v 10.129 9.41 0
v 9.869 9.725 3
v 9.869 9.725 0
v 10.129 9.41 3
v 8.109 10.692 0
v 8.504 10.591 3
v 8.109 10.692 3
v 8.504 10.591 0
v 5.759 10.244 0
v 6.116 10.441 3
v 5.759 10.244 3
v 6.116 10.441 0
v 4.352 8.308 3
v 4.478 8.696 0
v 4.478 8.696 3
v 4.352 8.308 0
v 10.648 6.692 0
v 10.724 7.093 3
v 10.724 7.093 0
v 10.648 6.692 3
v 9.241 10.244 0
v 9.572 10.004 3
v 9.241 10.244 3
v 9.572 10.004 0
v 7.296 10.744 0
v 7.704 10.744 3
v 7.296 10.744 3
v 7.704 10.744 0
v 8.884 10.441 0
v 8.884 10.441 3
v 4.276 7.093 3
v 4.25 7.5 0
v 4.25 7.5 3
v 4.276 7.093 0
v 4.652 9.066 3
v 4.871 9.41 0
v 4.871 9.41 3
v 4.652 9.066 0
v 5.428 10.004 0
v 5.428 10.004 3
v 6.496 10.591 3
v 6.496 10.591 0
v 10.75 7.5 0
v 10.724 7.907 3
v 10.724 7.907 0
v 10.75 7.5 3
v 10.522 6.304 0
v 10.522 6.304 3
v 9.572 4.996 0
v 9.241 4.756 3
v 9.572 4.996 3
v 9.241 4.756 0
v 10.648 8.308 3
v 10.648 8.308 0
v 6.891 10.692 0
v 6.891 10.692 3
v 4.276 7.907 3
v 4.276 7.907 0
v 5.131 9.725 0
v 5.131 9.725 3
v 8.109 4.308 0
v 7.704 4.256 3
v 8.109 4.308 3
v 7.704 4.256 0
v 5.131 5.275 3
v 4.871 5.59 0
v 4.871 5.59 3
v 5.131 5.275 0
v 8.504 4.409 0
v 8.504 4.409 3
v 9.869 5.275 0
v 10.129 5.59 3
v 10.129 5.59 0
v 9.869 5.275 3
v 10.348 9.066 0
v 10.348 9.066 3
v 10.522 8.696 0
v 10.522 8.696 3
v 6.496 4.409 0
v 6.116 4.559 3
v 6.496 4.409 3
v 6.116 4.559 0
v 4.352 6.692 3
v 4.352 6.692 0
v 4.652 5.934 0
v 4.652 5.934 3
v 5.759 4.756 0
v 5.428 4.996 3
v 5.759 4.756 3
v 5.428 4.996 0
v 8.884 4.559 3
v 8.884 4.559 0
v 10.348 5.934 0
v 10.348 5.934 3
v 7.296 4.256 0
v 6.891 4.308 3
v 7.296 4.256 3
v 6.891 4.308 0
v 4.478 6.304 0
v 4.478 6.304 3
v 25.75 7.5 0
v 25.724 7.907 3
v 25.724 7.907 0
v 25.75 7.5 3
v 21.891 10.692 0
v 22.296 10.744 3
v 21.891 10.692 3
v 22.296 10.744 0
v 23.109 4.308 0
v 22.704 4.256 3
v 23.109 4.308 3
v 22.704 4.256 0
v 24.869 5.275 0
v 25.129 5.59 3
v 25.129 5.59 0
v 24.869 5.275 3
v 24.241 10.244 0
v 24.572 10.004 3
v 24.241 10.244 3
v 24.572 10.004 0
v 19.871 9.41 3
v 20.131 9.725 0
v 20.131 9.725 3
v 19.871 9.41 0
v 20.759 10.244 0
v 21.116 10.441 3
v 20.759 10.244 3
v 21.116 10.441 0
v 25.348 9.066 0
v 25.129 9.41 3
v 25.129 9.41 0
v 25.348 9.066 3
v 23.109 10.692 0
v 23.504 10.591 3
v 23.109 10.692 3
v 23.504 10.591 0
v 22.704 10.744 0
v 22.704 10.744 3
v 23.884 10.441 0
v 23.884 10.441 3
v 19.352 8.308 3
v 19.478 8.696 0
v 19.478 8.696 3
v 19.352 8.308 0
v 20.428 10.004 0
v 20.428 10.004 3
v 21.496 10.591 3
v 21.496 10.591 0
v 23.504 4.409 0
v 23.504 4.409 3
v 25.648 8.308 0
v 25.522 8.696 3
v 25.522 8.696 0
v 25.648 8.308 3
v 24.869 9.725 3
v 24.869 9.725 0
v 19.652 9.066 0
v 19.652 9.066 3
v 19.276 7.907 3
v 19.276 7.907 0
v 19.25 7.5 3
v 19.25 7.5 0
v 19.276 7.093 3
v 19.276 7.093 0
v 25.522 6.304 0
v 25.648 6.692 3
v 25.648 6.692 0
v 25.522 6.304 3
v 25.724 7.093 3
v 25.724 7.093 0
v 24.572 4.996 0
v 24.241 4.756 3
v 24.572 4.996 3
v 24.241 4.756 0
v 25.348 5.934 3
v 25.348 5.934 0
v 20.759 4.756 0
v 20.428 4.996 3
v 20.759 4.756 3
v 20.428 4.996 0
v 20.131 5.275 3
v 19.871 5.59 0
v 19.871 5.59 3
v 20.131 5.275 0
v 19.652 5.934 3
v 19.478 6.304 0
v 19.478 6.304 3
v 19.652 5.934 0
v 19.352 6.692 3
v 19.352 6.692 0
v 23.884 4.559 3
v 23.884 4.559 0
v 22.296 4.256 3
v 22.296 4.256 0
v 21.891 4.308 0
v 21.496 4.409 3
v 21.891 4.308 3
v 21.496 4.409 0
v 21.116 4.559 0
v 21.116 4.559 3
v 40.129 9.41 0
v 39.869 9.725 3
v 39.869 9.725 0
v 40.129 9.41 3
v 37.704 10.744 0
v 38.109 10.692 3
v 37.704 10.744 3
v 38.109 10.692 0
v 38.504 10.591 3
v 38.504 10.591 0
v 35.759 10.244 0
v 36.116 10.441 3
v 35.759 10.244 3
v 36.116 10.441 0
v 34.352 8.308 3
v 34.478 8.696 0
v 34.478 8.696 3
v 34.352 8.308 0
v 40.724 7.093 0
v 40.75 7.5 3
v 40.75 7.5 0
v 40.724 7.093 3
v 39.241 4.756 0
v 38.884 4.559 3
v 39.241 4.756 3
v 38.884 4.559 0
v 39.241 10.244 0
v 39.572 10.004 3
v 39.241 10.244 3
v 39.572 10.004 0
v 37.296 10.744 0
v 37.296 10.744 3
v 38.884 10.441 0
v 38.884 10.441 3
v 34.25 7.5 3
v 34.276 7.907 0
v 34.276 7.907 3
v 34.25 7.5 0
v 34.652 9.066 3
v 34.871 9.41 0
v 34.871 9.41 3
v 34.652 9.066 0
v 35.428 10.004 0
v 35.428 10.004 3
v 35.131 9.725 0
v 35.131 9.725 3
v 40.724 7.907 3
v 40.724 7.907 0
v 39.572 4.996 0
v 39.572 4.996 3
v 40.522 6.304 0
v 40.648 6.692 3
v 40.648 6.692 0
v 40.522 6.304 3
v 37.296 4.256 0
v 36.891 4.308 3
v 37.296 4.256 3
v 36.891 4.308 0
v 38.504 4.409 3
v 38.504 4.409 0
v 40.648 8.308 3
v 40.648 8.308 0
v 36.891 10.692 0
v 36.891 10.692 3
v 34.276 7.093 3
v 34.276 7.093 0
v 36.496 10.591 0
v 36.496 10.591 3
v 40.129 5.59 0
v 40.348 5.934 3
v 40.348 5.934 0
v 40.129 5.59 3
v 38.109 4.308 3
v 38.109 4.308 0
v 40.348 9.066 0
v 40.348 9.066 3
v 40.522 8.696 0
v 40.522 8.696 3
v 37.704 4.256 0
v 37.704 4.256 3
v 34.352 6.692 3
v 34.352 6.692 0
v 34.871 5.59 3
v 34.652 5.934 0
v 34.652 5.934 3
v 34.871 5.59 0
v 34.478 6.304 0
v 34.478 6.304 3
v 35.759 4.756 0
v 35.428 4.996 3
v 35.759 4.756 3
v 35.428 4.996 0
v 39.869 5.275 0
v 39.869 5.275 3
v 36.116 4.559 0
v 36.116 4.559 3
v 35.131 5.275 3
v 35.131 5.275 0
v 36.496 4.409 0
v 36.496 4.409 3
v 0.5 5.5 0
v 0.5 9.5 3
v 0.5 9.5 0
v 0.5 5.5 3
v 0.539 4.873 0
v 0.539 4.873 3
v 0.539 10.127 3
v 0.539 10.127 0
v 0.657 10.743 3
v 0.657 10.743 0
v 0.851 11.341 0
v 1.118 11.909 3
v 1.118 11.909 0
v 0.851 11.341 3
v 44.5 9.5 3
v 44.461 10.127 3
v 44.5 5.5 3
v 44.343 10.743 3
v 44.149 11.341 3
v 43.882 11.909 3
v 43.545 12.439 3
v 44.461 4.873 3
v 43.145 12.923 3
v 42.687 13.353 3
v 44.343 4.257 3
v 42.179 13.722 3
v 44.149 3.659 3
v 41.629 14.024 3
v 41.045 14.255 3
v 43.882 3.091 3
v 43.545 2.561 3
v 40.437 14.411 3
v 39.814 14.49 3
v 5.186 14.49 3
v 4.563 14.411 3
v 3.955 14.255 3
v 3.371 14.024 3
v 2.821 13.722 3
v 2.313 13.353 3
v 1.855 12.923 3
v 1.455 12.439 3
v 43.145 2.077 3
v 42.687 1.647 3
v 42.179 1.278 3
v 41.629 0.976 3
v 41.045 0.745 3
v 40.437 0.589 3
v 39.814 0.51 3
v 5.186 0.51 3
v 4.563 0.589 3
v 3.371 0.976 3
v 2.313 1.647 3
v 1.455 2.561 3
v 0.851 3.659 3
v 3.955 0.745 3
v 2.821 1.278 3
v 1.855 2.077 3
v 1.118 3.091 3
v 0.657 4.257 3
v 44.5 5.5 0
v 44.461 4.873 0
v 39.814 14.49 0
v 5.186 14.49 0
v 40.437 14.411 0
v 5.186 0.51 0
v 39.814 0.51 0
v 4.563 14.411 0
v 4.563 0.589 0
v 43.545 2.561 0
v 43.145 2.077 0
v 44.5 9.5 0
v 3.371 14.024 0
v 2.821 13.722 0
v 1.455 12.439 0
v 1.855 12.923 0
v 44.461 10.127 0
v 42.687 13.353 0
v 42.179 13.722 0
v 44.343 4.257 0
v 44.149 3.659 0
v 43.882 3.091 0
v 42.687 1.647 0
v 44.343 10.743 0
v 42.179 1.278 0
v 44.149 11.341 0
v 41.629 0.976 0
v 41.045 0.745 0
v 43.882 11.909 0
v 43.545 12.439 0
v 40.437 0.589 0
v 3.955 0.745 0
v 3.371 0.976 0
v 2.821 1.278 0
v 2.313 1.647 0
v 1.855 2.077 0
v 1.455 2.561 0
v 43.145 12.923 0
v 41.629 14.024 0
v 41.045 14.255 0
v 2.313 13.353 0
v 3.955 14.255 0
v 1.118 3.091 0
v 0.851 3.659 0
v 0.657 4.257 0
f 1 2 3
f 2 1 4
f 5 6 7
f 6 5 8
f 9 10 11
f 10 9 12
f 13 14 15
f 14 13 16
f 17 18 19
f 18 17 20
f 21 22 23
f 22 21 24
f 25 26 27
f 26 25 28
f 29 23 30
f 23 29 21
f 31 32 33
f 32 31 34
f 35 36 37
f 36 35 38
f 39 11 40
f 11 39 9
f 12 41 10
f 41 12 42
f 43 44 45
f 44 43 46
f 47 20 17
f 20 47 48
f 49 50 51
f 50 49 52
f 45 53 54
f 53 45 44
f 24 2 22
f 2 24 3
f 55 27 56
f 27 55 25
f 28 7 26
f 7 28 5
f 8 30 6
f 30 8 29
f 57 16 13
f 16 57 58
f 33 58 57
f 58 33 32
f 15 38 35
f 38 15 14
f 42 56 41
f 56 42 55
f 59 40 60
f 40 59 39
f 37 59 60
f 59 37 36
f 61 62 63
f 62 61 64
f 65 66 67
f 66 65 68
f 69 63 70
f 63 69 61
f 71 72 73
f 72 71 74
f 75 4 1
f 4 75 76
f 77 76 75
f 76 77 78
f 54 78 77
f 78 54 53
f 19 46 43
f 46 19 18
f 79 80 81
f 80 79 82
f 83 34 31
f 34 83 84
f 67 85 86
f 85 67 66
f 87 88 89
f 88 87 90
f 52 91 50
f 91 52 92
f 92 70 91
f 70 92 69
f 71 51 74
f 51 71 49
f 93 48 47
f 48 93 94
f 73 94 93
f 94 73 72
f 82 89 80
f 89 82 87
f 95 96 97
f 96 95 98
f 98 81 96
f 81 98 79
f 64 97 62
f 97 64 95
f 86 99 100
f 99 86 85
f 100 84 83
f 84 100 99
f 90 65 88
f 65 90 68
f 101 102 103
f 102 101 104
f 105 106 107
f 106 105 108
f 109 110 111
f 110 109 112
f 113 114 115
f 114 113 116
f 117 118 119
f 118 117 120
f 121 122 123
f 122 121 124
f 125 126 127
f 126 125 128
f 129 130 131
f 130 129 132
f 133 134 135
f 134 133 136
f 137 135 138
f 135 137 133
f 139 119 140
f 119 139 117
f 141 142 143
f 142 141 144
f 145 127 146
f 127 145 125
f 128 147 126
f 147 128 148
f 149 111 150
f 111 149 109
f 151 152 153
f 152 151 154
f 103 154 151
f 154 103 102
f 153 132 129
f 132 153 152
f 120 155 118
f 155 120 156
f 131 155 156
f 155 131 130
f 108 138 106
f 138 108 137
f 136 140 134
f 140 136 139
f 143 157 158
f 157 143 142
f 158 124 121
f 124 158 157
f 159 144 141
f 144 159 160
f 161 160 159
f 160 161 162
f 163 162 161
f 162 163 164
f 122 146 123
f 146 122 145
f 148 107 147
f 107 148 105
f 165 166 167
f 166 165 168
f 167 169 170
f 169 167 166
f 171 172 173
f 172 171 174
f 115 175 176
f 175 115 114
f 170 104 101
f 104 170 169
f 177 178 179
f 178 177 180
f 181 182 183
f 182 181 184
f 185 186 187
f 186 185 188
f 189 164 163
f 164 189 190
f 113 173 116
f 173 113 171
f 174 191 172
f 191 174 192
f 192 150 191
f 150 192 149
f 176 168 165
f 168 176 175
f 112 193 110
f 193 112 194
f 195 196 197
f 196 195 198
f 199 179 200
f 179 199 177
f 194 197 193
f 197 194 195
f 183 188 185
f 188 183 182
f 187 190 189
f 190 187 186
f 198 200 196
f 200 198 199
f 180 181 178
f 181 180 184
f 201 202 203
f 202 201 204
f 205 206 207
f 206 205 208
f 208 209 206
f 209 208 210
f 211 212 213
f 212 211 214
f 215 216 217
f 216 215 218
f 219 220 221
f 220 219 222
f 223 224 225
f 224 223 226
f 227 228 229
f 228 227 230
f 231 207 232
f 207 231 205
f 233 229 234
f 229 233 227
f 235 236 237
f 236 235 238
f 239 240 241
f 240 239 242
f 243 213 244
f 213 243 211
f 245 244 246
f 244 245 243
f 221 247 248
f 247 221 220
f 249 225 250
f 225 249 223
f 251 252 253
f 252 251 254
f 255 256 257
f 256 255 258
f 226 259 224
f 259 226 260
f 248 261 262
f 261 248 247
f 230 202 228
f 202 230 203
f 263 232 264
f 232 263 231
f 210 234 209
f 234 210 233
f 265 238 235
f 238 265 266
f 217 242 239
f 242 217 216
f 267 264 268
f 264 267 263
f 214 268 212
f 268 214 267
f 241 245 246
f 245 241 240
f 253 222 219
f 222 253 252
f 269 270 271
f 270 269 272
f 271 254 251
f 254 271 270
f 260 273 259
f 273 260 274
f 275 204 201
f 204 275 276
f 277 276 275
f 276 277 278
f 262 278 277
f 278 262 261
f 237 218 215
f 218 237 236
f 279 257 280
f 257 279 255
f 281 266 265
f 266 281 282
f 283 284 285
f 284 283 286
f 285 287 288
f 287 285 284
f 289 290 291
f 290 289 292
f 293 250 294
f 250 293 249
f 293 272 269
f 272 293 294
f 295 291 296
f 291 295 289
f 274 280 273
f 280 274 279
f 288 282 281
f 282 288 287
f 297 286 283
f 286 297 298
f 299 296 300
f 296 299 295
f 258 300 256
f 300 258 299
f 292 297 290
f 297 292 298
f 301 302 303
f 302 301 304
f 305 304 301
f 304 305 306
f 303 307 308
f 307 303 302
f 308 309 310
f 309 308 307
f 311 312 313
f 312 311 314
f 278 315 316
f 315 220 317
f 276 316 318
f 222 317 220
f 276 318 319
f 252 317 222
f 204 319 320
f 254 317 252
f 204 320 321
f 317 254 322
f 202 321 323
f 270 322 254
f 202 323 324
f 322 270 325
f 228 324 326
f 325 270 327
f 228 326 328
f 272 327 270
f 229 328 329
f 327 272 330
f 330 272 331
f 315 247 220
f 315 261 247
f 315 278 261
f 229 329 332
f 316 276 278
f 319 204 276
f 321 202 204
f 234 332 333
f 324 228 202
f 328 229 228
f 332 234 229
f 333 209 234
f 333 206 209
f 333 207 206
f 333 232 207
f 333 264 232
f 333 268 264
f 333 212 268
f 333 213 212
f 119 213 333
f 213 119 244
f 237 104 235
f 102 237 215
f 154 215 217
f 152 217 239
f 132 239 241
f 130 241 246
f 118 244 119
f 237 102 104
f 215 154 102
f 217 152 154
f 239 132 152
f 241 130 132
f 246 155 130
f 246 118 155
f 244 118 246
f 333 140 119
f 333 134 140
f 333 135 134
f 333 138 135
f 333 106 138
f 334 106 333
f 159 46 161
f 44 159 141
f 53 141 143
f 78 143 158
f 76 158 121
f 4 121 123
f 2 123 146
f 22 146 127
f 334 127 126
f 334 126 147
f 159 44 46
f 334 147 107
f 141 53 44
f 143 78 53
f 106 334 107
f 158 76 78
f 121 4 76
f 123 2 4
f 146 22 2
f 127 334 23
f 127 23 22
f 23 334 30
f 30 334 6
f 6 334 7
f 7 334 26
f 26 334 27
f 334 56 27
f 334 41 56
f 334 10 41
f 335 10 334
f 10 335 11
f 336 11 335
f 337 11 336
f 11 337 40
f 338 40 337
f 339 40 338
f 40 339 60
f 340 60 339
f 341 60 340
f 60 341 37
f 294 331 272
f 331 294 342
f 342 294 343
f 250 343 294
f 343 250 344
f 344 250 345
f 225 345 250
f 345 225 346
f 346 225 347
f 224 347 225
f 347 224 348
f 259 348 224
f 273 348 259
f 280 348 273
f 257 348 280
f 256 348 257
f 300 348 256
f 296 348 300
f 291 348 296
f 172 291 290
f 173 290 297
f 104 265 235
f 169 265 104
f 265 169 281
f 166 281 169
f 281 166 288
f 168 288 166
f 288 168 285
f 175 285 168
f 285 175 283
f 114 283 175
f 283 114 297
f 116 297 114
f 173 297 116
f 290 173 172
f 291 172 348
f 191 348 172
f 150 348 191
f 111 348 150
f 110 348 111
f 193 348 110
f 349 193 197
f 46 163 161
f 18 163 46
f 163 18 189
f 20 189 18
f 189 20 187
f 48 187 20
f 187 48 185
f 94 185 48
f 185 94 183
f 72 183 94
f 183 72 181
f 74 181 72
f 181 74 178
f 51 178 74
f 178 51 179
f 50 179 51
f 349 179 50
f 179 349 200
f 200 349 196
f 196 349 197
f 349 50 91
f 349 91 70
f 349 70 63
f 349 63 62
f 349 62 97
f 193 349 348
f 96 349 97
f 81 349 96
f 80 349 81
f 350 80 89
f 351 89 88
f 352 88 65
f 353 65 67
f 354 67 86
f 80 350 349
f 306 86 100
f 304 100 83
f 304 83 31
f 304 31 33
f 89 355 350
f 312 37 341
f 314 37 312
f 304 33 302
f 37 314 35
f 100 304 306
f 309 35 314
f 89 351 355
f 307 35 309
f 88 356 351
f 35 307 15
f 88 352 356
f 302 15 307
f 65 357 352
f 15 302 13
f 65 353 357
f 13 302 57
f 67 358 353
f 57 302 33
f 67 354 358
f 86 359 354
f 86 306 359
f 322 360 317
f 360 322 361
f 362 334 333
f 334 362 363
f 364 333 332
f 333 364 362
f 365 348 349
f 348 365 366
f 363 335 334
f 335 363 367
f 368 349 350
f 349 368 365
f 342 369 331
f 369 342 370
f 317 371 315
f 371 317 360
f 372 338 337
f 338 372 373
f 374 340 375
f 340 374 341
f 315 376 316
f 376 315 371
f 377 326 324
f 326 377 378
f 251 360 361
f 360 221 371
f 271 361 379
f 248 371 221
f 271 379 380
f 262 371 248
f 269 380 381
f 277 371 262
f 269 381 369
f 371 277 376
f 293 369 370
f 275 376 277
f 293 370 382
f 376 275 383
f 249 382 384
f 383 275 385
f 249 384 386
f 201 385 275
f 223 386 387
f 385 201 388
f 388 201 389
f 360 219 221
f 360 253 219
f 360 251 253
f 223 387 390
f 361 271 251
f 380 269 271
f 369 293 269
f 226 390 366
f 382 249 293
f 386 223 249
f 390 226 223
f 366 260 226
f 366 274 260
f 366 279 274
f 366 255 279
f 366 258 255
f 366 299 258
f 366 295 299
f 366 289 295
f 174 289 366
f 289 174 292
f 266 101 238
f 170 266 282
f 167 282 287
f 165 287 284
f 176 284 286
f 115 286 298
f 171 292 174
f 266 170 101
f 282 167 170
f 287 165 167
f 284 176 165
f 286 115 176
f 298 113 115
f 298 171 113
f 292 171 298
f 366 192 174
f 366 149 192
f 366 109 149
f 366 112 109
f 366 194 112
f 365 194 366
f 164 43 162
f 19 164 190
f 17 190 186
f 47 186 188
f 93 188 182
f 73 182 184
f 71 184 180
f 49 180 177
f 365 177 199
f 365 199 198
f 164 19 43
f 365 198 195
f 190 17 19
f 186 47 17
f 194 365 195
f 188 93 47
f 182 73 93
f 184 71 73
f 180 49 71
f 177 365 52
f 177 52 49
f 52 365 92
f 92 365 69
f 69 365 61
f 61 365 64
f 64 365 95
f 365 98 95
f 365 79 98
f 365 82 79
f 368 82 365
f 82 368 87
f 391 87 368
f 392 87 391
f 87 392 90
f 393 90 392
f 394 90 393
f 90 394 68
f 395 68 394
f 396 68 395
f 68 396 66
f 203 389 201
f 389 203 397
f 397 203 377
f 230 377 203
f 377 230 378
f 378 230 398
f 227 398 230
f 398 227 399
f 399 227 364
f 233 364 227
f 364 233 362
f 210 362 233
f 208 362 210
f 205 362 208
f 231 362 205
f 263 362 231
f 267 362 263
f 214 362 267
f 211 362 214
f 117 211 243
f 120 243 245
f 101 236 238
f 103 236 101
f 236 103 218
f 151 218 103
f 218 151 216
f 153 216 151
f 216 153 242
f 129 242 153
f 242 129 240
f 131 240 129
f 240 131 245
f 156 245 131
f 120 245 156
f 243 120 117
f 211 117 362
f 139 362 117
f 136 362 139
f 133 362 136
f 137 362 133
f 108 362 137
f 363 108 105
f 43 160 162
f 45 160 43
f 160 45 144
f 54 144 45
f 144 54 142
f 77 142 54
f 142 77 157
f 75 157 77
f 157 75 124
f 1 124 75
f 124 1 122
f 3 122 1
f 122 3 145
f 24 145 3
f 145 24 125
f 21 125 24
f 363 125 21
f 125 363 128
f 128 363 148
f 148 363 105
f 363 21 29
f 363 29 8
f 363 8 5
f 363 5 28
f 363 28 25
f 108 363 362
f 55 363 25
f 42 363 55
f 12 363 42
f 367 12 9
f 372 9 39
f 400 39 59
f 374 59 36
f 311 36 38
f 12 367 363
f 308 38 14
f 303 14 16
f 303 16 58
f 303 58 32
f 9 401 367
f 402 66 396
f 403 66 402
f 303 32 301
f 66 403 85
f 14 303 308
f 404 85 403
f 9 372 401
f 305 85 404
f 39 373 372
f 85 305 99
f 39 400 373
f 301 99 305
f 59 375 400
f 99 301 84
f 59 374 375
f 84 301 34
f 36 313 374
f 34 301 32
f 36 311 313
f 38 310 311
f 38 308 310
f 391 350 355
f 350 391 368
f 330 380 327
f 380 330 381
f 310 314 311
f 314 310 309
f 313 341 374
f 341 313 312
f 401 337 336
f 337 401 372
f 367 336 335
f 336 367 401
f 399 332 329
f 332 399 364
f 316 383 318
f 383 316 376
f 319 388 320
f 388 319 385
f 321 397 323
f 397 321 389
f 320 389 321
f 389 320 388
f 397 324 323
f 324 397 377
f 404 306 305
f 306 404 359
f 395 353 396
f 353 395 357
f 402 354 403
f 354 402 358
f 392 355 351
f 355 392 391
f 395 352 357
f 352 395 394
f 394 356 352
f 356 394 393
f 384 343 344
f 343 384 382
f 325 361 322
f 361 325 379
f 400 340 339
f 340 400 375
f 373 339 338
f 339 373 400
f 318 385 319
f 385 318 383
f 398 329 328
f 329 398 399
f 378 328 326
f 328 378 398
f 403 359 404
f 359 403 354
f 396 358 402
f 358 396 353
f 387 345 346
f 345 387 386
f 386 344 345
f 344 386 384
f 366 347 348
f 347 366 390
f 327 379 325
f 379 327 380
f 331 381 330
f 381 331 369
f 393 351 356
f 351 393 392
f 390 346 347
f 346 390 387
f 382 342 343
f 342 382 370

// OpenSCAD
// Generated by SolidPython 1.1.3 on 2023-01-09 14:53:16
$fn = 50;


difference() {
	union() {
		translate(v = [22.5000000000, 7.5000000000, 0]) {
			rotate(a = [0, 0, 0]) {
				hull() {
					translate(v = [-17.0000000000, 2.0000000000, 0]) {
						rotate(a = [0, 0, 0]) {
							translate(v = [0, 0, 0]) {
								rotate(a = [0, 0, 0]) {
									cylinder(h = 3, r = 5);
								}
							}
						}
					}
					translate(v = [17.0000000000, 2.0000000000, 0]) {
						rotate(a = [0, 0, 0]) {
							translate(v = [0, 0, 0]) {
								rotate(a = [0, 0, 0]) {
									cylinder(h = 3, r = 5);
								}
							}
						}
					}
					translate(v = [-17.0000000000, -2.0000000000, 0]) {
						rotate(a = [0, 0, 0]) {
							translate(v = [0, 0, 0]) {
								rotate(a = [0, 0, 0]) {
									cylinder(h = 3, r = 5);
								}
							}
						}
					}
					translate(v = [17.0000000000, -2.0000000000, 0]) {
						rotate(a = [0, 0, 0]) {
							translate(v = [0, 0, 0]) {
								rotate(a = [0, 0, 0]) {
									cylinder(h = 3, r = 5);
								}
							}
						}
					}
				}
			}
		}
	}
	union() {
		translate(v = [7.5000000000, 7.5000000000, 0]) {
			rotate(a = [0, 0, 0]) {
				translate(v = [0, 0, -50]) {
					rotate(a = [0, 0, 0]) {
						cylinder(h = 100, r = 3.2500000000);
					}
				}
			}
		}
		translate(v = [22.5000000000, 7.5000000000, 0]) {
			rotate(a = [0, 0, 0]) {
				translate(v = [0, 0, -50]) {
					rotate(a = [0, 0, 0]) {
						cylinder(h = 100, r = 3.2500000000);
					}
				}
			}
		}
		translate(v = [37.5000000000, 7.5000000000, 0]) {
			rotate(a = [0, 0, 0]) {
				translate(v = [0, 0, -50]) {
					rotate(a = [0, 0, 0]) {
						cylinder(h = 100, r = 3.2500000000);
					}
				}
			}
		}
	}
}
/***********************************************
*********      SolidPython code:      **********
************************************************
 
from solid import *
import os
import subprocess

import oomB

import opsc_library_gen

mode = "laser"
#mode = "3d_print"

defined_objects = {}

radius_dict = {}
countersunk_dict = {}


def set_mode(m):
    global mode
    mode = m
    radius_dict['M6'] = 6.5/2
    radius_dict['M3'] = 3.3/2
    if mode == "laser":
        radius_dict['M6'] = 6/2
        radius_dict['M3'] = 3/2

    countersunk_dict['M3'] = {}
    countersunk_dict['M3']['little_rad'] = radius_dict['M3']
    countersunk_dict['M3']['big_rad'] = (5.5+0.6)/2
    if mode == "laser":
        countersunk_dict['M3']['big_rad'] = (4.75+0.6)/2
        countersunk_dict['M3']['little_rad'] = (4.75+0.6)/2

    countersunk_dict['M3']['height'] = 1.7


def opsc_make_object(filename, objects, save_type="none",resolution=50, layers = 1, tilediff = 200, mode="laser"):
    set_mode(mode)
    save_type = save_type.lower()
    os.makedirs(os.path.dirname(filename), exist_ok=True)
    final_object = opsc_get_object(objects)
    # Save the final object to the specified filename    
    scad_render_to_file(final_object, filename, file_header='$fn = %s;' % resolution, include_orig_code=True)
    if mode == "laser":
        filename_laser = filename.replace(".scad","-flat.scad")
        scad_render_to_file(getLaser(final_object, layers=layers, tilediff=tilediff), filename_laser, file_header='$fn = %s;' % resolution, include_orig_code=True)
        if save_type == "all":
            saveToAll(filename_laser)
        elif save_type == "dxf":
            saveToDxf(filename_laser)
    if save_type == "all":
        saveToAll(filename)
    elif save_type == "dxf":
        saveToDxf(filename)


def opsc_get_object(objects):
    # Create the solidpython objects
    positive_objects = [get_opsc_item(obj) for obj in objects if obj['type'] == 'positive']
    negative_objects = [get_opsc_item(obj) for obj in objects if obj['type'] == 'negative']
    # Union the positive objects
    positive_object = union()(*positive_objects)
    # Union the negative objects
    negative_object = union()(*negative_objects)
    # Create the final object by subtracting the negative objects from the positive objects
    return difference()(positive_object, negative_object)

def get_opsc_item(params):
    # A dictionary to map radius string values to numerical values
    #radius_dict = {'small': 5, 'medium': 10, 'large': 15}
    # An array of function names for basic shapes
    basic_shapes = ['cube', 'sphere', 'cylinder']
    
    # An array of function names for other shapes
    other_shapes = ['hole', 'slot', 'rounded_rectangle', 'countersunk']
    


    # Convert radius to r if present, and remove radius from the params dictionary
    if 'radius' in params:
        if isinstance(params['radius'], str):
            # Use the radius_dict to map the radius string value to a numerical value
            params['r'] = radius_dict[params['radius']]
        else:
            params['r'] = params['radius']
        del params['radius']
    

    # Check if the object type is a basic shape
    if params['shape'] in basic_shapes:
        # Remove shape and unexpected dictionary values
        allowed_keys = {'size', 'r', 'r1', 'r2', 'd', 'h', 'rw', 'rh', 'dw', 'dh'}
        shape_params = {k: v for k, v in params.items() if k in allowed_keys}

        # Call the corresponding function for the shape parameter, using ** notation to pass the shape_params dictionary as keyword arguments
        return get_opsc_transform(params,globals()[params['shape']](**shape_params))
    
    # If the object type is not a basic shape, check if it's a defined object or one of the other shapes
    elif params['shape'] in other_shapes:
        # Call the corresponding function for the shape parameter, passing the params dictionary as an argument
        p2 = copy.deepcopy(params)
        p2["pos"] = [0,0,0]
        return get_opsc_transform(params,globals()[params['shape']](p2))
    
    # If the object is not a basic shape or a defined object, try to import it from a .scad file
    else:
        obj = defined_objects[params['shape']]
        return get_opsc_transform(params,obj)

def get_opsc_transform(params, solid_obj):
    # Rotate the object based on the 'rot' field in the params dictionary, or the 'rotX', 'rotY', and 'rotZ' fields if 'rot' is not present
    rot = params.get('rot', [])
    if rot:
        rotX, rotY, rotZ = rot
    else:
        rotX = params.get('rotX', 0)
        rotY = params.get('rotY', 0)
        rotZ = params.get('rotZ', 0)
    solid_obj = rotate([rotX, rotY, rotZ])(solid_obj)

    # Translate the object based on the 'pos' field in the params dictionary, or the 'x', 'y', and 'z' fields if 'pos' is not present
    pos = params.get('pos', [])
    if pos:
        x, y, z = pos
    else:
        x = params.get('x', 0)
        y = params.get('y', 0)
        z = params.get('z', 0)
    solid_obj = translate([x, y, z])(solid_obj)
    return solid_obj


import random

def opsc_easy_array(type, shape, repeats, pos_start, shift_arr, **kwargs):
    for i in range(0,3):
        repeats.append(1)
        pos_start.append(0)
        shift_arr.append(0)
    return_objects = []

    for x in range(0,repeats[0]):
        for y in range(0,repeats[1]):
            for z in range(0,repeats[2]):
                return_objects.append(opsc_easy(type, shape, pos=[pos_start[0]+x*shift_arr[0],pos_start[1]+y*shift_arr[1],pos_start[2]+z*shift_arr[2]], **kwargs))
    return return_objects                



def opsc_easy(type, shape, **kwargs):
    obj = {
        'type': type,
        'shape': shape
    }
    for param in ['size', 'r', 'r1', 'r2', 'd', 'h', 'rw', 'rh', 'dw', 'dh', 'pos', 'x', 'y', 'z', 'rot', 'rotX', 'rotY', 'rotZ', "w"]:
        if param in kwargs:
            obj[param] = kwargs[param]
    return obj

def hole(params):
    p2 = copy.deepcopy(params)  
    # Check if the radius is a string and replace it with the corresponding value from the dictionary
    if isinstance(p2['r'], str):
        p2['r'] = radius_dict[p2['r']]
    
    # Set the height to 100 if not specified
    if 'h' not in p2:
        p2['h'] = 100
        p2["pos"] = [0,0,-50]
    p2["center"] = True
    # Create the cylinder object
    p2["shape"] = "cylinder"
    p2["type"] = "positive"

    return get_opsc_item(p2)

import copy

def countersunk(params):
    p2 = copy.deepcopy(params)
    counter_rad = p2['r']
    p2['r'] = radius_dict[p2['r']]
    hp = copy.deepcopy(p2)
    hp["type"] = "positive"
    hp["shape"] = "hole"
    del hp["rot"]
    hol = get_opsc_item(hp)
    
    cp = copy.deepcopy(p2)
    cp["h"] = countersunk_dict[counter_rad]["height"]
    cp["r2"] = countersunk_dict[counter_rad]["little_rad"]
    cp["r1"] = countersunk_dict[counter_rad]["big_rad"]
    del cp["r"]
    del cp["rot"]
    cp["type"] = "positive"
    cp["shape"] = "cylinder"
    cp["pos"] = [0,0,0]

    top = get_opsc_item(cp)
    return union()(hol,top)



def slot(params):  
    p2 = copy.deepcopy(params) 
    if isinstance(p2['r'], str):
        p2['r'] = radius_dict[p2['r']]
    p2["type"] = "positive"
    p2["shape"] = "hole"
    del p2["rot"]
    p2["pos"] = [0,0,0]
    left = copy.deepcopy(p2)
    right = copy.deepcopy(p2)
    left["pos"][0] = p2["w"] / 2 - p2["r"] 
    
    right["pos"][0] = -p2["w"] / 2 + p2["r"] 
    pass
    leftObj = get_opsc_item(left)
    rightObj = get_opsc_item(right)
    return hull()(leftObj, rightObj)

def rounded_rectangle(params):   
    p2 = copy.deepcopy(params) 
    p2["h"] = p2["size"][2]
    p2["pos"] = p2.get("pos", [0, 0, 0]) 
    p2["type"] = "positive"
    p2["shape"] = "hole"
    p2["pos"] = [0,0,0]
    
    if 'rot' in p2:
        del p2["rot"]   
    if 'r' not in p2:
        p2["r"] = 5 
    tl = copy.deepcopy(p2)
    tr = copy.deepcopy(p2)
    bl = copy.deepcopy(p2)
    br = copy.deepcopy(p2)
    tl["pos"][0] = -(p2["size"][0] - p2["r"]*2)/2
    tl["pos"][1] = (p2["size"][1] - p2["r"]*2)/2
    tr["pos"][0] = (p2["size"][0] - p2["r"]*2)/2
    tr["pos"][1] = (p2["size"][1] - p2["r"]*2)/2
    bl["pos"][0] = -(p2["size"][0] - p2["r"]*2)/2
    bl["pos"][1] = -(p2["size"][1] - p2["r"]*2)/2
    br["pos"][0] = (p2["size"][0] - p2["r"]*2)/2
    br["pos"][1] = -(p2["size"][1] - p2["r"]*2)/2
    del tl["size"]
    del tr["size"]
    del bl["size"]
    del br["size"]
    tlo = get_opsc_item(tl)
    tro = get_opsc_item(tr)
    blo = get_opsc_item(bl)
    bro = get_opsc_item(br)    
    return hull()(tlo, tro, blo, bro)



def import_scad_object(filename):
    # Import the .scad file and convert it to a solidpython object
    #filename = "parts"
    obj = import_scad(filename)
    return obj.main()
    


import os
import solid as solidpython

# A dictionary to store the defined objects


def load_scad_objects():
    opsc_library_gen.gen_library(defined_objects)

import random

def test(num_objects):
    objects = []
    for i in range(num_objects):
        # Choose a random shape
        #shape = random.choice(['cube', 'sphere', 'cylinder', 'hole', 'slot', "rounded_rectangle"])
        shape = random.choice(["rounded_rectangle"])

        # Choose a random type
        type = random.choice(['positive', 'negative'])
        
        # Create an empty object dictionary
        obj = {'shape': shape, 'type': type}
        
        # Set shape-specific parameters
        if obj['shape'] in ['cube']:
            obj['size'] =  [random.uniform(5, 15), random.uniform(5, 15), random.uniform(5, 15)]
        if obj['shape'] in ['rounded_rectangle']:
            obj['size'] =  [random.uniform(5, 15), random.uniform(5, 15), random.uniform(5, 15)]
            obj['r'] = random.uniform(0.5, 5)
        elif obj['shape'] == 'sphere':
            obj['r'] = random.uniform(5, 15)
        elif obj['shape'] in ['cylinder', 'hole']:
            obj['r'] = random.uniform(0.5, 5)
            obj['h'] = random.uniform(5, 15)
        elif obj['shape'] == 'slot':
            obj['r'] = random.uniform(0.5, 5)
            obj['h'] = random.uniform(5, 15)
            obj['w'] = random.uniform(5, 15)
        
        # Set a random position and rotation
        obj['pos'] = [random.uniform(-20, 20), random.uniform(-20, 20), random.uniform(-20, 20)]
        obj['rot'] = [random.uniform(-180, 180), random.uniform(-180, 180), random.uniform(-180, 180)]
        
        # Add the object to the list
        objects.append(obj)
    return objects

####### old file saving
def saveToAll(fileIn):
    saveToDxf(fileIn)
    saveToPng(fileIn)
    saveToStl(fileIn)
    saveToSvg(fileIn)

def saveToDxf(fileIn, fileOut="", copy_to_laser=True):
    if fileOut == "":
        fileOut = fileIn.replace(".scad",".dxf")
    saveToFile(fileIn, fileOut)


    
def saveToPng(fileIn, fileOut="",extra="--render"):
    if fileOut == "":
        fileOut = fileIn.replace(".scad",".png")
    saveToFile(fileIn, fileOut)

def saveToStl(fileIn, fileOut=""):
    if fileOut == "":
        fileOut = fileIn.replace(".scad",".stl")
    saveToFile(fileIn, fileOut)
    
def saveToSvg(fileIn, fileOut=""):
    if fileOut == "":
        fileOut = fileIn.replace(".scad",".svg")
    saveToFile(fileIn, fileOut)

def saveToFile(fileIn, fileOut,extra=""):
    #extra = extra + " --colorscheme Tomorrow"

    launchStr = 'openscad -o "' + fileOut + '"' + extra + ' "' + fileIn + '"'
    if ".png" in fileOut:
        launchStr = launchStr + " --render"
    print("            saveToFile launch string: " + launchStr)
    subprocess.run(launchStr)
    x=0

def getLaser(final_object,start=1.5,layers=1,thickness=3,tilediff=200):
        rv= []

        for x in range(layers):
            rv.append(translate([0,x*tilediff,0])(
                    projection()(
                        intersection()(translate([-500,-500,start+x*thickness])(cube(size=[1000,1000,0.1])),
                            final_object
                        )
                    )
            )
            )
            
        return union()(rv)

set_mode("laser")
load_scad_objects() 
 
************************************************/
